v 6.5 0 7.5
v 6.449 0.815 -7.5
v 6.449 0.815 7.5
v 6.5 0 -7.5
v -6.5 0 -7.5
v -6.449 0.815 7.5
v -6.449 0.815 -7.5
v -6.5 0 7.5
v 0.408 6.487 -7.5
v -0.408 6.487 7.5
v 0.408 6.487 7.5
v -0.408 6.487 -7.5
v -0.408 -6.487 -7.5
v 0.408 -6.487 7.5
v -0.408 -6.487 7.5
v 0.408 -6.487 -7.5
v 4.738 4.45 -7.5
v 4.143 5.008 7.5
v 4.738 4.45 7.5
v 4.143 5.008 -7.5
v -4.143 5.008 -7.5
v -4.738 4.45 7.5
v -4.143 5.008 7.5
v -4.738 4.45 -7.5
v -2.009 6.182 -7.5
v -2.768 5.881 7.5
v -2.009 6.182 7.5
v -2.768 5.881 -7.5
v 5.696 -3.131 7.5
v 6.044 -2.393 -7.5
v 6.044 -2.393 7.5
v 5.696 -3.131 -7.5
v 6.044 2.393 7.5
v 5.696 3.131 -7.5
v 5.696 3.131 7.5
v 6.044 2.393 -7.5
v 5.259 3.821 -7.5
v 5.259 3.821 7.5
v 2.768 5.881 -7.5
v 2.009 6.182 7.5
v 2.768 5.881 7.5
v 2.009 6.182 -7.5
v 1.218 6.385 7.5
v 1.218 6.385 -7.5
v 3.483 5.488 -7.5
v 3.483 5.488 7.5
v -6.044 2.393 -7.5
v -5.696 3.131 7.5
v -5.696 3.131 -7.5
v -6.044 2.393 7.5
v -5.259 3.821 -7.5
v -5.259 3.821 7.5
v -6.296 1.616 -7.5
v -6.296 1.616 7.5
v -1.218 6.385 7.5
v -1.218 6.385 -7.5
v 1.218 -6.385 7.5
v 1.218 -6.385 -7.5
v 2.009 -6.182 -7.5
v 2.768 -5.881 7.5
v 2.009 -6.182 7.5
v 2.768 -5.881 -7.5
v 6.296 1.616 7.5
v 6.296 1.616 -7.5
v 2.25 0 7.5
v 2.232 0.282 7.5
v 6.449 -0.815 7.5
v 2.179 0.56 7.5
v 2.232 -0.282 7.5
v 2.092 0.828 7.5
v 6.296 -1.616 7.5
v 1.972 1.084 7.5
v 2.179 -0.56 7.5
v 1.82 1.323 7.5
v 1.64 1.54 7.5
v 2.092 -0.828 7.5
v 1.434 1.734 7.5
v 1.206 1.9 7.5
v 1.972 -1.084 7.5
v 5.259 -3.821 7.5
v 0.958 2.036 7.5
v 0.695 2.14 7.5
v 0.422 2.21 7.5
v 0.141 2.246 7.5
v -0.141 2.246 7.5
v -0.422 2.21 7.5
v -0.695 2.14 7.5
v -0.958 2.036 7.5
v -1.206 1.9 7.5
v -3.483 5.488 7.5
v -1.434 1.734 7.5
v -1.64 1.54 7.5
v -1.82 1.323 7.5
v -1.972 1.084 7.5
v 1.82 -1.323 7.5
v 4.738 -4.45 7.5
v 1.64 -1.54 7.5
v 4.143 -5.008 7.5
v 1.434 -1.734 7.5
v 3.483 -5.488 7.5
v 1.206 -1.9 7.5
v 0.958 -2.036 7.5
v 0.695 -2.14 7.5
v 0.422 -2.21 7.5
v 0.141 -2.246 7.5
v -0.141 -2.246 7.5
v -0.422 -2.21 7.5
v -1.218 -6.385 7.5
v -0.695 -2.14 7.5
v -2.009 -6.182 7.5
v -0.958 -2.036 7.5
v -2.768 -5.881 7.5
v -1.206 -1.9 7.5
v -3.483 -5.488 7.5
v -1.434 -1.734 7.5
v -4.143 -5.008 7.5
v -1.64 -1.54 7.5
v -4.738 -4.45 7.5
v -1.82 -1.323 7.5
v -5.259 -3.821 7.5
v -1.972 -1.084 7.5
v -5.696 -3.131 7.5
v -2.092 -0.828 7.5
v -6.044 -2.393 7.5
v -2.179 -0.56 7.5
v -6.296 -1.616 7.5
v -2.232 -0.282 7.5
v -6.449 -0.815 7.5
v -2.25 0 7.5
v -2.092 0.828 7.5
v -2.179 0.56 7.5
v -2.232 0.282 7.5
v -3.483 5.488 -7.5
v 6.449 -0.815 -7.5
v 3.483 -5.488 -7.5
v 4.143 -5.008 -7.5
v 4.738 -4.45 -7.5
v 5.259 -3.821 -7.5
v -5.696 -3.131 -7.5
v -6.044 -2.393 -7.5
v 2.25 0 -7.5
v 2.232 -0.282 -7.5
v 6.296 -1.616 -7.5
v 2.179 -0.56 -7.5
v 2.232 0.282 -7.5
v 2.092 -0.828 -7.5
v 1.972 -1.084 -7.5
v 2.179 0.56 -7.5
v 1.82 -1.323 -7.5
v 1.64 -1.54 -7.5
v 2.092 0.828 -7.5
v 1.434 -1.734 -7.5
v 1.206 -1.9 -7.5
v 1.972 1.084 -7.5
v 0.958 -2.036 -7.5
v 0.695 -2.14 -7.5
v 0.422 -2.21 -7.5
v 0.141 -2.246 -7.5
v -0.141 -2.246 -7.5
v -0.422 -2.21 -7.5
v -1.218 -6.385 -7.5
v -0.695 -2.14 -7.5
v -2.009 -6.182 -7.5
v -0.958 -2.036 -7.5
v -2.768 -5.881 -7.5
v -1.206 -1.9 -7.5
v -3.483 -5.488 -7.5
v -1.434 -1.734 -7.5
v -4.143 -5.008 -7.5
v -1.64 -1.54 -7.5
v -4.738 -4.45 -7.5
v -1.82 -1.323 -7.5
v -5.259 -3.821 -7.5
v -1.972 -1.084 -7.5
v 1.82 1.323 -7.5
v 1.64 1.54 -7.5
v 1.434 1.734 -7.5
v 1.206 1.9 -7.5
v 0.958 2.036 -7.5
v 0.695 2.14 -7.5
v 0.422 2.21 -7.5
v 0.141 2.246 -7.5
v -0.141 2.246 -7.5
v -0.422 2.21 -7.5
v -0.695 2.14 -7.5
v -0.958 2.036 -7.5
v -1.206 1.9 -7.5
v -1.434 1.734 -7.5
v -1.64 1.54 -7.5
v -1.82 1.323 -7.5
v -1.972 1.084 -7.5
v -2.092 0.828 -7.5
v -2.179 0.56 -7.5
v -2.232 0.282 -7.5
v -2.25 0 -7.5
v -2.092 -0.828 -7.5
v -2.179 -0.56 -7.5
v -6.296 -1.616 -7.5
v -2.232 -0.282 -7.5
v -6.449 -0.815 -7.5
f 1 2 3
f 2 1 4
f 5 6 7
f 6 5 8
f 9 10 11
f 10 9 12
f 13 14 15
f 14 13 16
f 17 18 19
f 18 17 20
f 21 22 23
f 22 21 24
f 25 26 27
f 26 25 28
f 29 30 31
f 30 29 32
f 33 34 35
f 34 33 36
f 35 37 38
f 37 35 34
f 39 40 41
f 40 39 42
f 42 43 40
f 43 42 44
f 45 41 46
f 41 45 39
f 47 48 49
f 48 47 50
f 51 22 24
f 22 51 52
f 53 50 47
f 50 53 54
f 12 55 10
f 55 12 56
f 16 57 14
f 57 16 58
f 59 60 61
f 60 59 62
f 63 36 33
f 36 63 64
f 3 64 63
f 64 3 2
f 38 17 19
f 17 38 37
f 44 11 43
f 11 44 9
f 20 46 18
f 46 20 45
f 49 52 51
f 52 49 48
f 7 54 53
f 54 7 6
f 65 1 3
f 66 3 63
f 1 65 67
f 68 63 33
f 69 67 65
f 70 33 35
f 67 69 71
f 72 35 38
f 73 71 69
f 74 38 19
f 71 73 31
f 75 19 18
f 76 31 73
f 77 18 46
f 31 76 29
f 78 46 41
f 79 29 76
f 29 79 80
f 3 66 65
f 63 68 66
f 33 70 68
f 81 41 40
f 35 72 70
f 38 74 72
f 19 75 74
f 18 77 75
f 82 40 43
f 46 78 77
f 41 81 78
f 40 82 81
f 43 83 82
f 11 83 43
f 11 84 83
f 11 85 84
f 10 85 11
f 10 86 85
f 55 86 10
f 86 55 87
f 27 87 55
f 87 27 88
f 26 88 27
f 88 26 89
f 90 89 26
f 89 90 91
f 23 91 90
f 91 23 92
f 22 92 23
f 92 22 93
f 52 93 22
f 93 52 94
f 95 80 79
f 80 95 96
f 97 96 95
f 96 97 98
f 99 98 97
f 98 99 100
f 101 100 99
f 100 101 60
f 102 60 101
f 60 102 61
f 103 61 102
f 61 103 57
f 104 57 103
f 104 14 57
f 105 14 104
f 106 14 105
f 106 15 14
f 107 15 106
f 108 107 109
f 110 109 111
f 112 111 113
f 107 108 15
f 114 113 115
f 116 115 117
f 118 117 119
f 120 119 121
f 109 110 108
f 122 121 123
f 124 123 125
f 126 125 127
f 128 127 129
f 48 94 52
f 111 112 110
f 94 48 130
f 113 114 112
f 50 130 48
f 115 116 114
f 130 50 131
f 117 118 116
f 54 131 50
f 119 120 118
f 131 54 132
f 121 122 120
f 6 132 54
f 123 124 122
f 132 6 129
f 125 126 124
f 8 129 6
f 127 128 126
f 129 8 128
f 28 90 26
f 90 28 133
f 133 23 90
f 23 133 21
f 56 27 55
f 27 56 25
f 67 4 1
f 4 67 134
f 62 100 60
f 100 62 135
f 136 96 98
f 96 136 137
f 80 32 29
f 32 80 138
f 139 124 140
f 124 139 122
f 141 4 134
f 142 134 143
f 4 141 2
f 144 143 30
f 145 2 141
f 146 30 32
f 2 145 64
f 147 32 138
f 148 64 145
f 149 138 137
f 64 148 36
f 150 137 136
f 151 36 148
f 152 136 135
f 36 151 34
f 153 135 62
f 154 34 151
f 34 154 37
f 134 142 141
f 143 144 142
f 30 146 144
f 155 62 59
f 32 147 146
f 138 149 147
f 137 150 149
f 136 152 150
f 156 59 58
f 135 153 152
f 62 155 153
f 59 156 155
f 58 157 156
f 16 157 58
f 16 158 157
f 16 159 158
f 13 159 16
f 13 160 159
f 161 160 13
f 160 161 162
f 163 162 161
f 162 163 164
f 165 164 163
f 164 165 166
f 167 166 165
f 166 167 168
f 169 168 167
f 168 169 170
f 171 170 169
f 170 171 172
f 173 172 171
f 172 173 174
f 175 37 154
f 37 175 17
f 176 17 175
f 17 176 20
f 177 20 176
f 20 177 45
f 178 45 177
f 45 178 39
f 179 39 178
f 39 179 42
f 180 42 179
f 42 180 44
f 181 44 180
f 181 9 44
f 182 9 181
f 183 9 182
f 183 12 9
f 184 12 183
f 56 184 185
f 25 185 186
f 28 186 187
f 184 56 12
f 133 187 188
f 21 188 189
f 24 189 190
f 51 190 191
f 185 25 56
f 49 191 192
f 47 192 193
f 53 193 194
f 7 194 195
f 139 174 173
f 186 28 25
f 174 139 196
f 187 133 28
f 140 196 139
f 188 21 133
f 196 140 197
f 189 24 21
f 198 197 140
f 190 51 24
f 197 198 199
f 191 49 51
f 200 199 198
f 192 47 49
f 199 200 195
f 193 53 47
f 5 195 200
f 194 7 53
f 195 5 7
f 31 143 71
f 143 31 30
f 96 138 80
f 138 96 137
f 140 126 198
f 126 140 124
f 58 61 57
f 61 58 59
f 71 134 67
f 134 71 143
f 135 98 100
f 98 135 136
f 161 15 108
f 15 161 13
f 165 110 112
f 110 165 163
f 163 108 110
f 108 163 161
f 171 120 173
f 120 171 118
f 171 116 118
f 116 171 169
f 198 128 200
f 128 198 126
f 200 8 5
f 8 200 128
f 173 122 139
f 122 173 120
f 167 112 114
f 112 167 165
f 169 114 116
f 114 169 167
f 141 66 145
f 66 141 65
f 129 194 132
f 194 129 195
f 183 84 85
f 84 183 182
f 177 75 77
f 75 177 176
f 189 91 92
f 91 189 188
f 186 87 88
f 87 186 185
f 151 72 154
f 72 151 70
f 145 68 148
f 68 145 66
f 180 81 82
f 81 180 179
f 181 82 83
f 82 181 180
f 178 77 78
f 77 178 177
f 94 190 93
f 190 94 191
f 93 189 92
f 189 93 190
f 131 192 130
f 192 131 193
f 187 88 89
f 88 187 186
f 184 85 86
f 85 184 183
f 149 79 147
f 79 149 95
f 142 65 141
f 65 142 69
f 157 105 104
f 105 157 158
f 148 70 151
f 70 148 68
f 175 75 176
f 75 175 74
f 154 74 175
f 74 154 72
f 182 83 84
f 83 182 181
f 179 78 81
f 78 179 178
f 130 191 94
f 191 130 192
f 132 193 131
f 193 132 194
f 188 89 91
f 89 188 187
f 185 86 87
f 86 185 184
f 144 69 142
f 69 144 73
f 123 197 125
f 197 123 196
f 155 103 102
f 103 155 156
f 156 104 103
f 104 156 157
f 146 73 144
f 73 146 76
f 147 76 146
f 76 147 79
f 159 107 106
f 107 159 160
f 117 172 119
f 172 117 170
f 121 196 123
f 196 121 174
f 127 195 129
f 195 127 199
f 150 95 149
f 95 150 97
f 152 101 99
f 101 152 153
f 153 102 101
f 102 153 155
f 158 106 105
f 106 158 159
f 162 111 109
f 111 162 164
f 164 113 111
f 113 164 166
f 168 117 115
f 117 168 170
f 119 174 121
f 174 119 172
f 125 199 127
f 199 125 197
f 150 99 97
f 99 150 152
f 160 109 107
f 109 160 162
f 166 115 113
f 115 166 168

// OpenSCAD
$fn = 50;


difference() {
	union() {
		translate(v = [0, 0, -7.5000000000]) {
			cylinder(h = 15, r = 6.5000000000);
		}
	}
	union() {
		translate(v = [0, 0, -100.0000000000]) {
			cylinder(h = 200, r = 2.2500000000);
		}
	}
}
